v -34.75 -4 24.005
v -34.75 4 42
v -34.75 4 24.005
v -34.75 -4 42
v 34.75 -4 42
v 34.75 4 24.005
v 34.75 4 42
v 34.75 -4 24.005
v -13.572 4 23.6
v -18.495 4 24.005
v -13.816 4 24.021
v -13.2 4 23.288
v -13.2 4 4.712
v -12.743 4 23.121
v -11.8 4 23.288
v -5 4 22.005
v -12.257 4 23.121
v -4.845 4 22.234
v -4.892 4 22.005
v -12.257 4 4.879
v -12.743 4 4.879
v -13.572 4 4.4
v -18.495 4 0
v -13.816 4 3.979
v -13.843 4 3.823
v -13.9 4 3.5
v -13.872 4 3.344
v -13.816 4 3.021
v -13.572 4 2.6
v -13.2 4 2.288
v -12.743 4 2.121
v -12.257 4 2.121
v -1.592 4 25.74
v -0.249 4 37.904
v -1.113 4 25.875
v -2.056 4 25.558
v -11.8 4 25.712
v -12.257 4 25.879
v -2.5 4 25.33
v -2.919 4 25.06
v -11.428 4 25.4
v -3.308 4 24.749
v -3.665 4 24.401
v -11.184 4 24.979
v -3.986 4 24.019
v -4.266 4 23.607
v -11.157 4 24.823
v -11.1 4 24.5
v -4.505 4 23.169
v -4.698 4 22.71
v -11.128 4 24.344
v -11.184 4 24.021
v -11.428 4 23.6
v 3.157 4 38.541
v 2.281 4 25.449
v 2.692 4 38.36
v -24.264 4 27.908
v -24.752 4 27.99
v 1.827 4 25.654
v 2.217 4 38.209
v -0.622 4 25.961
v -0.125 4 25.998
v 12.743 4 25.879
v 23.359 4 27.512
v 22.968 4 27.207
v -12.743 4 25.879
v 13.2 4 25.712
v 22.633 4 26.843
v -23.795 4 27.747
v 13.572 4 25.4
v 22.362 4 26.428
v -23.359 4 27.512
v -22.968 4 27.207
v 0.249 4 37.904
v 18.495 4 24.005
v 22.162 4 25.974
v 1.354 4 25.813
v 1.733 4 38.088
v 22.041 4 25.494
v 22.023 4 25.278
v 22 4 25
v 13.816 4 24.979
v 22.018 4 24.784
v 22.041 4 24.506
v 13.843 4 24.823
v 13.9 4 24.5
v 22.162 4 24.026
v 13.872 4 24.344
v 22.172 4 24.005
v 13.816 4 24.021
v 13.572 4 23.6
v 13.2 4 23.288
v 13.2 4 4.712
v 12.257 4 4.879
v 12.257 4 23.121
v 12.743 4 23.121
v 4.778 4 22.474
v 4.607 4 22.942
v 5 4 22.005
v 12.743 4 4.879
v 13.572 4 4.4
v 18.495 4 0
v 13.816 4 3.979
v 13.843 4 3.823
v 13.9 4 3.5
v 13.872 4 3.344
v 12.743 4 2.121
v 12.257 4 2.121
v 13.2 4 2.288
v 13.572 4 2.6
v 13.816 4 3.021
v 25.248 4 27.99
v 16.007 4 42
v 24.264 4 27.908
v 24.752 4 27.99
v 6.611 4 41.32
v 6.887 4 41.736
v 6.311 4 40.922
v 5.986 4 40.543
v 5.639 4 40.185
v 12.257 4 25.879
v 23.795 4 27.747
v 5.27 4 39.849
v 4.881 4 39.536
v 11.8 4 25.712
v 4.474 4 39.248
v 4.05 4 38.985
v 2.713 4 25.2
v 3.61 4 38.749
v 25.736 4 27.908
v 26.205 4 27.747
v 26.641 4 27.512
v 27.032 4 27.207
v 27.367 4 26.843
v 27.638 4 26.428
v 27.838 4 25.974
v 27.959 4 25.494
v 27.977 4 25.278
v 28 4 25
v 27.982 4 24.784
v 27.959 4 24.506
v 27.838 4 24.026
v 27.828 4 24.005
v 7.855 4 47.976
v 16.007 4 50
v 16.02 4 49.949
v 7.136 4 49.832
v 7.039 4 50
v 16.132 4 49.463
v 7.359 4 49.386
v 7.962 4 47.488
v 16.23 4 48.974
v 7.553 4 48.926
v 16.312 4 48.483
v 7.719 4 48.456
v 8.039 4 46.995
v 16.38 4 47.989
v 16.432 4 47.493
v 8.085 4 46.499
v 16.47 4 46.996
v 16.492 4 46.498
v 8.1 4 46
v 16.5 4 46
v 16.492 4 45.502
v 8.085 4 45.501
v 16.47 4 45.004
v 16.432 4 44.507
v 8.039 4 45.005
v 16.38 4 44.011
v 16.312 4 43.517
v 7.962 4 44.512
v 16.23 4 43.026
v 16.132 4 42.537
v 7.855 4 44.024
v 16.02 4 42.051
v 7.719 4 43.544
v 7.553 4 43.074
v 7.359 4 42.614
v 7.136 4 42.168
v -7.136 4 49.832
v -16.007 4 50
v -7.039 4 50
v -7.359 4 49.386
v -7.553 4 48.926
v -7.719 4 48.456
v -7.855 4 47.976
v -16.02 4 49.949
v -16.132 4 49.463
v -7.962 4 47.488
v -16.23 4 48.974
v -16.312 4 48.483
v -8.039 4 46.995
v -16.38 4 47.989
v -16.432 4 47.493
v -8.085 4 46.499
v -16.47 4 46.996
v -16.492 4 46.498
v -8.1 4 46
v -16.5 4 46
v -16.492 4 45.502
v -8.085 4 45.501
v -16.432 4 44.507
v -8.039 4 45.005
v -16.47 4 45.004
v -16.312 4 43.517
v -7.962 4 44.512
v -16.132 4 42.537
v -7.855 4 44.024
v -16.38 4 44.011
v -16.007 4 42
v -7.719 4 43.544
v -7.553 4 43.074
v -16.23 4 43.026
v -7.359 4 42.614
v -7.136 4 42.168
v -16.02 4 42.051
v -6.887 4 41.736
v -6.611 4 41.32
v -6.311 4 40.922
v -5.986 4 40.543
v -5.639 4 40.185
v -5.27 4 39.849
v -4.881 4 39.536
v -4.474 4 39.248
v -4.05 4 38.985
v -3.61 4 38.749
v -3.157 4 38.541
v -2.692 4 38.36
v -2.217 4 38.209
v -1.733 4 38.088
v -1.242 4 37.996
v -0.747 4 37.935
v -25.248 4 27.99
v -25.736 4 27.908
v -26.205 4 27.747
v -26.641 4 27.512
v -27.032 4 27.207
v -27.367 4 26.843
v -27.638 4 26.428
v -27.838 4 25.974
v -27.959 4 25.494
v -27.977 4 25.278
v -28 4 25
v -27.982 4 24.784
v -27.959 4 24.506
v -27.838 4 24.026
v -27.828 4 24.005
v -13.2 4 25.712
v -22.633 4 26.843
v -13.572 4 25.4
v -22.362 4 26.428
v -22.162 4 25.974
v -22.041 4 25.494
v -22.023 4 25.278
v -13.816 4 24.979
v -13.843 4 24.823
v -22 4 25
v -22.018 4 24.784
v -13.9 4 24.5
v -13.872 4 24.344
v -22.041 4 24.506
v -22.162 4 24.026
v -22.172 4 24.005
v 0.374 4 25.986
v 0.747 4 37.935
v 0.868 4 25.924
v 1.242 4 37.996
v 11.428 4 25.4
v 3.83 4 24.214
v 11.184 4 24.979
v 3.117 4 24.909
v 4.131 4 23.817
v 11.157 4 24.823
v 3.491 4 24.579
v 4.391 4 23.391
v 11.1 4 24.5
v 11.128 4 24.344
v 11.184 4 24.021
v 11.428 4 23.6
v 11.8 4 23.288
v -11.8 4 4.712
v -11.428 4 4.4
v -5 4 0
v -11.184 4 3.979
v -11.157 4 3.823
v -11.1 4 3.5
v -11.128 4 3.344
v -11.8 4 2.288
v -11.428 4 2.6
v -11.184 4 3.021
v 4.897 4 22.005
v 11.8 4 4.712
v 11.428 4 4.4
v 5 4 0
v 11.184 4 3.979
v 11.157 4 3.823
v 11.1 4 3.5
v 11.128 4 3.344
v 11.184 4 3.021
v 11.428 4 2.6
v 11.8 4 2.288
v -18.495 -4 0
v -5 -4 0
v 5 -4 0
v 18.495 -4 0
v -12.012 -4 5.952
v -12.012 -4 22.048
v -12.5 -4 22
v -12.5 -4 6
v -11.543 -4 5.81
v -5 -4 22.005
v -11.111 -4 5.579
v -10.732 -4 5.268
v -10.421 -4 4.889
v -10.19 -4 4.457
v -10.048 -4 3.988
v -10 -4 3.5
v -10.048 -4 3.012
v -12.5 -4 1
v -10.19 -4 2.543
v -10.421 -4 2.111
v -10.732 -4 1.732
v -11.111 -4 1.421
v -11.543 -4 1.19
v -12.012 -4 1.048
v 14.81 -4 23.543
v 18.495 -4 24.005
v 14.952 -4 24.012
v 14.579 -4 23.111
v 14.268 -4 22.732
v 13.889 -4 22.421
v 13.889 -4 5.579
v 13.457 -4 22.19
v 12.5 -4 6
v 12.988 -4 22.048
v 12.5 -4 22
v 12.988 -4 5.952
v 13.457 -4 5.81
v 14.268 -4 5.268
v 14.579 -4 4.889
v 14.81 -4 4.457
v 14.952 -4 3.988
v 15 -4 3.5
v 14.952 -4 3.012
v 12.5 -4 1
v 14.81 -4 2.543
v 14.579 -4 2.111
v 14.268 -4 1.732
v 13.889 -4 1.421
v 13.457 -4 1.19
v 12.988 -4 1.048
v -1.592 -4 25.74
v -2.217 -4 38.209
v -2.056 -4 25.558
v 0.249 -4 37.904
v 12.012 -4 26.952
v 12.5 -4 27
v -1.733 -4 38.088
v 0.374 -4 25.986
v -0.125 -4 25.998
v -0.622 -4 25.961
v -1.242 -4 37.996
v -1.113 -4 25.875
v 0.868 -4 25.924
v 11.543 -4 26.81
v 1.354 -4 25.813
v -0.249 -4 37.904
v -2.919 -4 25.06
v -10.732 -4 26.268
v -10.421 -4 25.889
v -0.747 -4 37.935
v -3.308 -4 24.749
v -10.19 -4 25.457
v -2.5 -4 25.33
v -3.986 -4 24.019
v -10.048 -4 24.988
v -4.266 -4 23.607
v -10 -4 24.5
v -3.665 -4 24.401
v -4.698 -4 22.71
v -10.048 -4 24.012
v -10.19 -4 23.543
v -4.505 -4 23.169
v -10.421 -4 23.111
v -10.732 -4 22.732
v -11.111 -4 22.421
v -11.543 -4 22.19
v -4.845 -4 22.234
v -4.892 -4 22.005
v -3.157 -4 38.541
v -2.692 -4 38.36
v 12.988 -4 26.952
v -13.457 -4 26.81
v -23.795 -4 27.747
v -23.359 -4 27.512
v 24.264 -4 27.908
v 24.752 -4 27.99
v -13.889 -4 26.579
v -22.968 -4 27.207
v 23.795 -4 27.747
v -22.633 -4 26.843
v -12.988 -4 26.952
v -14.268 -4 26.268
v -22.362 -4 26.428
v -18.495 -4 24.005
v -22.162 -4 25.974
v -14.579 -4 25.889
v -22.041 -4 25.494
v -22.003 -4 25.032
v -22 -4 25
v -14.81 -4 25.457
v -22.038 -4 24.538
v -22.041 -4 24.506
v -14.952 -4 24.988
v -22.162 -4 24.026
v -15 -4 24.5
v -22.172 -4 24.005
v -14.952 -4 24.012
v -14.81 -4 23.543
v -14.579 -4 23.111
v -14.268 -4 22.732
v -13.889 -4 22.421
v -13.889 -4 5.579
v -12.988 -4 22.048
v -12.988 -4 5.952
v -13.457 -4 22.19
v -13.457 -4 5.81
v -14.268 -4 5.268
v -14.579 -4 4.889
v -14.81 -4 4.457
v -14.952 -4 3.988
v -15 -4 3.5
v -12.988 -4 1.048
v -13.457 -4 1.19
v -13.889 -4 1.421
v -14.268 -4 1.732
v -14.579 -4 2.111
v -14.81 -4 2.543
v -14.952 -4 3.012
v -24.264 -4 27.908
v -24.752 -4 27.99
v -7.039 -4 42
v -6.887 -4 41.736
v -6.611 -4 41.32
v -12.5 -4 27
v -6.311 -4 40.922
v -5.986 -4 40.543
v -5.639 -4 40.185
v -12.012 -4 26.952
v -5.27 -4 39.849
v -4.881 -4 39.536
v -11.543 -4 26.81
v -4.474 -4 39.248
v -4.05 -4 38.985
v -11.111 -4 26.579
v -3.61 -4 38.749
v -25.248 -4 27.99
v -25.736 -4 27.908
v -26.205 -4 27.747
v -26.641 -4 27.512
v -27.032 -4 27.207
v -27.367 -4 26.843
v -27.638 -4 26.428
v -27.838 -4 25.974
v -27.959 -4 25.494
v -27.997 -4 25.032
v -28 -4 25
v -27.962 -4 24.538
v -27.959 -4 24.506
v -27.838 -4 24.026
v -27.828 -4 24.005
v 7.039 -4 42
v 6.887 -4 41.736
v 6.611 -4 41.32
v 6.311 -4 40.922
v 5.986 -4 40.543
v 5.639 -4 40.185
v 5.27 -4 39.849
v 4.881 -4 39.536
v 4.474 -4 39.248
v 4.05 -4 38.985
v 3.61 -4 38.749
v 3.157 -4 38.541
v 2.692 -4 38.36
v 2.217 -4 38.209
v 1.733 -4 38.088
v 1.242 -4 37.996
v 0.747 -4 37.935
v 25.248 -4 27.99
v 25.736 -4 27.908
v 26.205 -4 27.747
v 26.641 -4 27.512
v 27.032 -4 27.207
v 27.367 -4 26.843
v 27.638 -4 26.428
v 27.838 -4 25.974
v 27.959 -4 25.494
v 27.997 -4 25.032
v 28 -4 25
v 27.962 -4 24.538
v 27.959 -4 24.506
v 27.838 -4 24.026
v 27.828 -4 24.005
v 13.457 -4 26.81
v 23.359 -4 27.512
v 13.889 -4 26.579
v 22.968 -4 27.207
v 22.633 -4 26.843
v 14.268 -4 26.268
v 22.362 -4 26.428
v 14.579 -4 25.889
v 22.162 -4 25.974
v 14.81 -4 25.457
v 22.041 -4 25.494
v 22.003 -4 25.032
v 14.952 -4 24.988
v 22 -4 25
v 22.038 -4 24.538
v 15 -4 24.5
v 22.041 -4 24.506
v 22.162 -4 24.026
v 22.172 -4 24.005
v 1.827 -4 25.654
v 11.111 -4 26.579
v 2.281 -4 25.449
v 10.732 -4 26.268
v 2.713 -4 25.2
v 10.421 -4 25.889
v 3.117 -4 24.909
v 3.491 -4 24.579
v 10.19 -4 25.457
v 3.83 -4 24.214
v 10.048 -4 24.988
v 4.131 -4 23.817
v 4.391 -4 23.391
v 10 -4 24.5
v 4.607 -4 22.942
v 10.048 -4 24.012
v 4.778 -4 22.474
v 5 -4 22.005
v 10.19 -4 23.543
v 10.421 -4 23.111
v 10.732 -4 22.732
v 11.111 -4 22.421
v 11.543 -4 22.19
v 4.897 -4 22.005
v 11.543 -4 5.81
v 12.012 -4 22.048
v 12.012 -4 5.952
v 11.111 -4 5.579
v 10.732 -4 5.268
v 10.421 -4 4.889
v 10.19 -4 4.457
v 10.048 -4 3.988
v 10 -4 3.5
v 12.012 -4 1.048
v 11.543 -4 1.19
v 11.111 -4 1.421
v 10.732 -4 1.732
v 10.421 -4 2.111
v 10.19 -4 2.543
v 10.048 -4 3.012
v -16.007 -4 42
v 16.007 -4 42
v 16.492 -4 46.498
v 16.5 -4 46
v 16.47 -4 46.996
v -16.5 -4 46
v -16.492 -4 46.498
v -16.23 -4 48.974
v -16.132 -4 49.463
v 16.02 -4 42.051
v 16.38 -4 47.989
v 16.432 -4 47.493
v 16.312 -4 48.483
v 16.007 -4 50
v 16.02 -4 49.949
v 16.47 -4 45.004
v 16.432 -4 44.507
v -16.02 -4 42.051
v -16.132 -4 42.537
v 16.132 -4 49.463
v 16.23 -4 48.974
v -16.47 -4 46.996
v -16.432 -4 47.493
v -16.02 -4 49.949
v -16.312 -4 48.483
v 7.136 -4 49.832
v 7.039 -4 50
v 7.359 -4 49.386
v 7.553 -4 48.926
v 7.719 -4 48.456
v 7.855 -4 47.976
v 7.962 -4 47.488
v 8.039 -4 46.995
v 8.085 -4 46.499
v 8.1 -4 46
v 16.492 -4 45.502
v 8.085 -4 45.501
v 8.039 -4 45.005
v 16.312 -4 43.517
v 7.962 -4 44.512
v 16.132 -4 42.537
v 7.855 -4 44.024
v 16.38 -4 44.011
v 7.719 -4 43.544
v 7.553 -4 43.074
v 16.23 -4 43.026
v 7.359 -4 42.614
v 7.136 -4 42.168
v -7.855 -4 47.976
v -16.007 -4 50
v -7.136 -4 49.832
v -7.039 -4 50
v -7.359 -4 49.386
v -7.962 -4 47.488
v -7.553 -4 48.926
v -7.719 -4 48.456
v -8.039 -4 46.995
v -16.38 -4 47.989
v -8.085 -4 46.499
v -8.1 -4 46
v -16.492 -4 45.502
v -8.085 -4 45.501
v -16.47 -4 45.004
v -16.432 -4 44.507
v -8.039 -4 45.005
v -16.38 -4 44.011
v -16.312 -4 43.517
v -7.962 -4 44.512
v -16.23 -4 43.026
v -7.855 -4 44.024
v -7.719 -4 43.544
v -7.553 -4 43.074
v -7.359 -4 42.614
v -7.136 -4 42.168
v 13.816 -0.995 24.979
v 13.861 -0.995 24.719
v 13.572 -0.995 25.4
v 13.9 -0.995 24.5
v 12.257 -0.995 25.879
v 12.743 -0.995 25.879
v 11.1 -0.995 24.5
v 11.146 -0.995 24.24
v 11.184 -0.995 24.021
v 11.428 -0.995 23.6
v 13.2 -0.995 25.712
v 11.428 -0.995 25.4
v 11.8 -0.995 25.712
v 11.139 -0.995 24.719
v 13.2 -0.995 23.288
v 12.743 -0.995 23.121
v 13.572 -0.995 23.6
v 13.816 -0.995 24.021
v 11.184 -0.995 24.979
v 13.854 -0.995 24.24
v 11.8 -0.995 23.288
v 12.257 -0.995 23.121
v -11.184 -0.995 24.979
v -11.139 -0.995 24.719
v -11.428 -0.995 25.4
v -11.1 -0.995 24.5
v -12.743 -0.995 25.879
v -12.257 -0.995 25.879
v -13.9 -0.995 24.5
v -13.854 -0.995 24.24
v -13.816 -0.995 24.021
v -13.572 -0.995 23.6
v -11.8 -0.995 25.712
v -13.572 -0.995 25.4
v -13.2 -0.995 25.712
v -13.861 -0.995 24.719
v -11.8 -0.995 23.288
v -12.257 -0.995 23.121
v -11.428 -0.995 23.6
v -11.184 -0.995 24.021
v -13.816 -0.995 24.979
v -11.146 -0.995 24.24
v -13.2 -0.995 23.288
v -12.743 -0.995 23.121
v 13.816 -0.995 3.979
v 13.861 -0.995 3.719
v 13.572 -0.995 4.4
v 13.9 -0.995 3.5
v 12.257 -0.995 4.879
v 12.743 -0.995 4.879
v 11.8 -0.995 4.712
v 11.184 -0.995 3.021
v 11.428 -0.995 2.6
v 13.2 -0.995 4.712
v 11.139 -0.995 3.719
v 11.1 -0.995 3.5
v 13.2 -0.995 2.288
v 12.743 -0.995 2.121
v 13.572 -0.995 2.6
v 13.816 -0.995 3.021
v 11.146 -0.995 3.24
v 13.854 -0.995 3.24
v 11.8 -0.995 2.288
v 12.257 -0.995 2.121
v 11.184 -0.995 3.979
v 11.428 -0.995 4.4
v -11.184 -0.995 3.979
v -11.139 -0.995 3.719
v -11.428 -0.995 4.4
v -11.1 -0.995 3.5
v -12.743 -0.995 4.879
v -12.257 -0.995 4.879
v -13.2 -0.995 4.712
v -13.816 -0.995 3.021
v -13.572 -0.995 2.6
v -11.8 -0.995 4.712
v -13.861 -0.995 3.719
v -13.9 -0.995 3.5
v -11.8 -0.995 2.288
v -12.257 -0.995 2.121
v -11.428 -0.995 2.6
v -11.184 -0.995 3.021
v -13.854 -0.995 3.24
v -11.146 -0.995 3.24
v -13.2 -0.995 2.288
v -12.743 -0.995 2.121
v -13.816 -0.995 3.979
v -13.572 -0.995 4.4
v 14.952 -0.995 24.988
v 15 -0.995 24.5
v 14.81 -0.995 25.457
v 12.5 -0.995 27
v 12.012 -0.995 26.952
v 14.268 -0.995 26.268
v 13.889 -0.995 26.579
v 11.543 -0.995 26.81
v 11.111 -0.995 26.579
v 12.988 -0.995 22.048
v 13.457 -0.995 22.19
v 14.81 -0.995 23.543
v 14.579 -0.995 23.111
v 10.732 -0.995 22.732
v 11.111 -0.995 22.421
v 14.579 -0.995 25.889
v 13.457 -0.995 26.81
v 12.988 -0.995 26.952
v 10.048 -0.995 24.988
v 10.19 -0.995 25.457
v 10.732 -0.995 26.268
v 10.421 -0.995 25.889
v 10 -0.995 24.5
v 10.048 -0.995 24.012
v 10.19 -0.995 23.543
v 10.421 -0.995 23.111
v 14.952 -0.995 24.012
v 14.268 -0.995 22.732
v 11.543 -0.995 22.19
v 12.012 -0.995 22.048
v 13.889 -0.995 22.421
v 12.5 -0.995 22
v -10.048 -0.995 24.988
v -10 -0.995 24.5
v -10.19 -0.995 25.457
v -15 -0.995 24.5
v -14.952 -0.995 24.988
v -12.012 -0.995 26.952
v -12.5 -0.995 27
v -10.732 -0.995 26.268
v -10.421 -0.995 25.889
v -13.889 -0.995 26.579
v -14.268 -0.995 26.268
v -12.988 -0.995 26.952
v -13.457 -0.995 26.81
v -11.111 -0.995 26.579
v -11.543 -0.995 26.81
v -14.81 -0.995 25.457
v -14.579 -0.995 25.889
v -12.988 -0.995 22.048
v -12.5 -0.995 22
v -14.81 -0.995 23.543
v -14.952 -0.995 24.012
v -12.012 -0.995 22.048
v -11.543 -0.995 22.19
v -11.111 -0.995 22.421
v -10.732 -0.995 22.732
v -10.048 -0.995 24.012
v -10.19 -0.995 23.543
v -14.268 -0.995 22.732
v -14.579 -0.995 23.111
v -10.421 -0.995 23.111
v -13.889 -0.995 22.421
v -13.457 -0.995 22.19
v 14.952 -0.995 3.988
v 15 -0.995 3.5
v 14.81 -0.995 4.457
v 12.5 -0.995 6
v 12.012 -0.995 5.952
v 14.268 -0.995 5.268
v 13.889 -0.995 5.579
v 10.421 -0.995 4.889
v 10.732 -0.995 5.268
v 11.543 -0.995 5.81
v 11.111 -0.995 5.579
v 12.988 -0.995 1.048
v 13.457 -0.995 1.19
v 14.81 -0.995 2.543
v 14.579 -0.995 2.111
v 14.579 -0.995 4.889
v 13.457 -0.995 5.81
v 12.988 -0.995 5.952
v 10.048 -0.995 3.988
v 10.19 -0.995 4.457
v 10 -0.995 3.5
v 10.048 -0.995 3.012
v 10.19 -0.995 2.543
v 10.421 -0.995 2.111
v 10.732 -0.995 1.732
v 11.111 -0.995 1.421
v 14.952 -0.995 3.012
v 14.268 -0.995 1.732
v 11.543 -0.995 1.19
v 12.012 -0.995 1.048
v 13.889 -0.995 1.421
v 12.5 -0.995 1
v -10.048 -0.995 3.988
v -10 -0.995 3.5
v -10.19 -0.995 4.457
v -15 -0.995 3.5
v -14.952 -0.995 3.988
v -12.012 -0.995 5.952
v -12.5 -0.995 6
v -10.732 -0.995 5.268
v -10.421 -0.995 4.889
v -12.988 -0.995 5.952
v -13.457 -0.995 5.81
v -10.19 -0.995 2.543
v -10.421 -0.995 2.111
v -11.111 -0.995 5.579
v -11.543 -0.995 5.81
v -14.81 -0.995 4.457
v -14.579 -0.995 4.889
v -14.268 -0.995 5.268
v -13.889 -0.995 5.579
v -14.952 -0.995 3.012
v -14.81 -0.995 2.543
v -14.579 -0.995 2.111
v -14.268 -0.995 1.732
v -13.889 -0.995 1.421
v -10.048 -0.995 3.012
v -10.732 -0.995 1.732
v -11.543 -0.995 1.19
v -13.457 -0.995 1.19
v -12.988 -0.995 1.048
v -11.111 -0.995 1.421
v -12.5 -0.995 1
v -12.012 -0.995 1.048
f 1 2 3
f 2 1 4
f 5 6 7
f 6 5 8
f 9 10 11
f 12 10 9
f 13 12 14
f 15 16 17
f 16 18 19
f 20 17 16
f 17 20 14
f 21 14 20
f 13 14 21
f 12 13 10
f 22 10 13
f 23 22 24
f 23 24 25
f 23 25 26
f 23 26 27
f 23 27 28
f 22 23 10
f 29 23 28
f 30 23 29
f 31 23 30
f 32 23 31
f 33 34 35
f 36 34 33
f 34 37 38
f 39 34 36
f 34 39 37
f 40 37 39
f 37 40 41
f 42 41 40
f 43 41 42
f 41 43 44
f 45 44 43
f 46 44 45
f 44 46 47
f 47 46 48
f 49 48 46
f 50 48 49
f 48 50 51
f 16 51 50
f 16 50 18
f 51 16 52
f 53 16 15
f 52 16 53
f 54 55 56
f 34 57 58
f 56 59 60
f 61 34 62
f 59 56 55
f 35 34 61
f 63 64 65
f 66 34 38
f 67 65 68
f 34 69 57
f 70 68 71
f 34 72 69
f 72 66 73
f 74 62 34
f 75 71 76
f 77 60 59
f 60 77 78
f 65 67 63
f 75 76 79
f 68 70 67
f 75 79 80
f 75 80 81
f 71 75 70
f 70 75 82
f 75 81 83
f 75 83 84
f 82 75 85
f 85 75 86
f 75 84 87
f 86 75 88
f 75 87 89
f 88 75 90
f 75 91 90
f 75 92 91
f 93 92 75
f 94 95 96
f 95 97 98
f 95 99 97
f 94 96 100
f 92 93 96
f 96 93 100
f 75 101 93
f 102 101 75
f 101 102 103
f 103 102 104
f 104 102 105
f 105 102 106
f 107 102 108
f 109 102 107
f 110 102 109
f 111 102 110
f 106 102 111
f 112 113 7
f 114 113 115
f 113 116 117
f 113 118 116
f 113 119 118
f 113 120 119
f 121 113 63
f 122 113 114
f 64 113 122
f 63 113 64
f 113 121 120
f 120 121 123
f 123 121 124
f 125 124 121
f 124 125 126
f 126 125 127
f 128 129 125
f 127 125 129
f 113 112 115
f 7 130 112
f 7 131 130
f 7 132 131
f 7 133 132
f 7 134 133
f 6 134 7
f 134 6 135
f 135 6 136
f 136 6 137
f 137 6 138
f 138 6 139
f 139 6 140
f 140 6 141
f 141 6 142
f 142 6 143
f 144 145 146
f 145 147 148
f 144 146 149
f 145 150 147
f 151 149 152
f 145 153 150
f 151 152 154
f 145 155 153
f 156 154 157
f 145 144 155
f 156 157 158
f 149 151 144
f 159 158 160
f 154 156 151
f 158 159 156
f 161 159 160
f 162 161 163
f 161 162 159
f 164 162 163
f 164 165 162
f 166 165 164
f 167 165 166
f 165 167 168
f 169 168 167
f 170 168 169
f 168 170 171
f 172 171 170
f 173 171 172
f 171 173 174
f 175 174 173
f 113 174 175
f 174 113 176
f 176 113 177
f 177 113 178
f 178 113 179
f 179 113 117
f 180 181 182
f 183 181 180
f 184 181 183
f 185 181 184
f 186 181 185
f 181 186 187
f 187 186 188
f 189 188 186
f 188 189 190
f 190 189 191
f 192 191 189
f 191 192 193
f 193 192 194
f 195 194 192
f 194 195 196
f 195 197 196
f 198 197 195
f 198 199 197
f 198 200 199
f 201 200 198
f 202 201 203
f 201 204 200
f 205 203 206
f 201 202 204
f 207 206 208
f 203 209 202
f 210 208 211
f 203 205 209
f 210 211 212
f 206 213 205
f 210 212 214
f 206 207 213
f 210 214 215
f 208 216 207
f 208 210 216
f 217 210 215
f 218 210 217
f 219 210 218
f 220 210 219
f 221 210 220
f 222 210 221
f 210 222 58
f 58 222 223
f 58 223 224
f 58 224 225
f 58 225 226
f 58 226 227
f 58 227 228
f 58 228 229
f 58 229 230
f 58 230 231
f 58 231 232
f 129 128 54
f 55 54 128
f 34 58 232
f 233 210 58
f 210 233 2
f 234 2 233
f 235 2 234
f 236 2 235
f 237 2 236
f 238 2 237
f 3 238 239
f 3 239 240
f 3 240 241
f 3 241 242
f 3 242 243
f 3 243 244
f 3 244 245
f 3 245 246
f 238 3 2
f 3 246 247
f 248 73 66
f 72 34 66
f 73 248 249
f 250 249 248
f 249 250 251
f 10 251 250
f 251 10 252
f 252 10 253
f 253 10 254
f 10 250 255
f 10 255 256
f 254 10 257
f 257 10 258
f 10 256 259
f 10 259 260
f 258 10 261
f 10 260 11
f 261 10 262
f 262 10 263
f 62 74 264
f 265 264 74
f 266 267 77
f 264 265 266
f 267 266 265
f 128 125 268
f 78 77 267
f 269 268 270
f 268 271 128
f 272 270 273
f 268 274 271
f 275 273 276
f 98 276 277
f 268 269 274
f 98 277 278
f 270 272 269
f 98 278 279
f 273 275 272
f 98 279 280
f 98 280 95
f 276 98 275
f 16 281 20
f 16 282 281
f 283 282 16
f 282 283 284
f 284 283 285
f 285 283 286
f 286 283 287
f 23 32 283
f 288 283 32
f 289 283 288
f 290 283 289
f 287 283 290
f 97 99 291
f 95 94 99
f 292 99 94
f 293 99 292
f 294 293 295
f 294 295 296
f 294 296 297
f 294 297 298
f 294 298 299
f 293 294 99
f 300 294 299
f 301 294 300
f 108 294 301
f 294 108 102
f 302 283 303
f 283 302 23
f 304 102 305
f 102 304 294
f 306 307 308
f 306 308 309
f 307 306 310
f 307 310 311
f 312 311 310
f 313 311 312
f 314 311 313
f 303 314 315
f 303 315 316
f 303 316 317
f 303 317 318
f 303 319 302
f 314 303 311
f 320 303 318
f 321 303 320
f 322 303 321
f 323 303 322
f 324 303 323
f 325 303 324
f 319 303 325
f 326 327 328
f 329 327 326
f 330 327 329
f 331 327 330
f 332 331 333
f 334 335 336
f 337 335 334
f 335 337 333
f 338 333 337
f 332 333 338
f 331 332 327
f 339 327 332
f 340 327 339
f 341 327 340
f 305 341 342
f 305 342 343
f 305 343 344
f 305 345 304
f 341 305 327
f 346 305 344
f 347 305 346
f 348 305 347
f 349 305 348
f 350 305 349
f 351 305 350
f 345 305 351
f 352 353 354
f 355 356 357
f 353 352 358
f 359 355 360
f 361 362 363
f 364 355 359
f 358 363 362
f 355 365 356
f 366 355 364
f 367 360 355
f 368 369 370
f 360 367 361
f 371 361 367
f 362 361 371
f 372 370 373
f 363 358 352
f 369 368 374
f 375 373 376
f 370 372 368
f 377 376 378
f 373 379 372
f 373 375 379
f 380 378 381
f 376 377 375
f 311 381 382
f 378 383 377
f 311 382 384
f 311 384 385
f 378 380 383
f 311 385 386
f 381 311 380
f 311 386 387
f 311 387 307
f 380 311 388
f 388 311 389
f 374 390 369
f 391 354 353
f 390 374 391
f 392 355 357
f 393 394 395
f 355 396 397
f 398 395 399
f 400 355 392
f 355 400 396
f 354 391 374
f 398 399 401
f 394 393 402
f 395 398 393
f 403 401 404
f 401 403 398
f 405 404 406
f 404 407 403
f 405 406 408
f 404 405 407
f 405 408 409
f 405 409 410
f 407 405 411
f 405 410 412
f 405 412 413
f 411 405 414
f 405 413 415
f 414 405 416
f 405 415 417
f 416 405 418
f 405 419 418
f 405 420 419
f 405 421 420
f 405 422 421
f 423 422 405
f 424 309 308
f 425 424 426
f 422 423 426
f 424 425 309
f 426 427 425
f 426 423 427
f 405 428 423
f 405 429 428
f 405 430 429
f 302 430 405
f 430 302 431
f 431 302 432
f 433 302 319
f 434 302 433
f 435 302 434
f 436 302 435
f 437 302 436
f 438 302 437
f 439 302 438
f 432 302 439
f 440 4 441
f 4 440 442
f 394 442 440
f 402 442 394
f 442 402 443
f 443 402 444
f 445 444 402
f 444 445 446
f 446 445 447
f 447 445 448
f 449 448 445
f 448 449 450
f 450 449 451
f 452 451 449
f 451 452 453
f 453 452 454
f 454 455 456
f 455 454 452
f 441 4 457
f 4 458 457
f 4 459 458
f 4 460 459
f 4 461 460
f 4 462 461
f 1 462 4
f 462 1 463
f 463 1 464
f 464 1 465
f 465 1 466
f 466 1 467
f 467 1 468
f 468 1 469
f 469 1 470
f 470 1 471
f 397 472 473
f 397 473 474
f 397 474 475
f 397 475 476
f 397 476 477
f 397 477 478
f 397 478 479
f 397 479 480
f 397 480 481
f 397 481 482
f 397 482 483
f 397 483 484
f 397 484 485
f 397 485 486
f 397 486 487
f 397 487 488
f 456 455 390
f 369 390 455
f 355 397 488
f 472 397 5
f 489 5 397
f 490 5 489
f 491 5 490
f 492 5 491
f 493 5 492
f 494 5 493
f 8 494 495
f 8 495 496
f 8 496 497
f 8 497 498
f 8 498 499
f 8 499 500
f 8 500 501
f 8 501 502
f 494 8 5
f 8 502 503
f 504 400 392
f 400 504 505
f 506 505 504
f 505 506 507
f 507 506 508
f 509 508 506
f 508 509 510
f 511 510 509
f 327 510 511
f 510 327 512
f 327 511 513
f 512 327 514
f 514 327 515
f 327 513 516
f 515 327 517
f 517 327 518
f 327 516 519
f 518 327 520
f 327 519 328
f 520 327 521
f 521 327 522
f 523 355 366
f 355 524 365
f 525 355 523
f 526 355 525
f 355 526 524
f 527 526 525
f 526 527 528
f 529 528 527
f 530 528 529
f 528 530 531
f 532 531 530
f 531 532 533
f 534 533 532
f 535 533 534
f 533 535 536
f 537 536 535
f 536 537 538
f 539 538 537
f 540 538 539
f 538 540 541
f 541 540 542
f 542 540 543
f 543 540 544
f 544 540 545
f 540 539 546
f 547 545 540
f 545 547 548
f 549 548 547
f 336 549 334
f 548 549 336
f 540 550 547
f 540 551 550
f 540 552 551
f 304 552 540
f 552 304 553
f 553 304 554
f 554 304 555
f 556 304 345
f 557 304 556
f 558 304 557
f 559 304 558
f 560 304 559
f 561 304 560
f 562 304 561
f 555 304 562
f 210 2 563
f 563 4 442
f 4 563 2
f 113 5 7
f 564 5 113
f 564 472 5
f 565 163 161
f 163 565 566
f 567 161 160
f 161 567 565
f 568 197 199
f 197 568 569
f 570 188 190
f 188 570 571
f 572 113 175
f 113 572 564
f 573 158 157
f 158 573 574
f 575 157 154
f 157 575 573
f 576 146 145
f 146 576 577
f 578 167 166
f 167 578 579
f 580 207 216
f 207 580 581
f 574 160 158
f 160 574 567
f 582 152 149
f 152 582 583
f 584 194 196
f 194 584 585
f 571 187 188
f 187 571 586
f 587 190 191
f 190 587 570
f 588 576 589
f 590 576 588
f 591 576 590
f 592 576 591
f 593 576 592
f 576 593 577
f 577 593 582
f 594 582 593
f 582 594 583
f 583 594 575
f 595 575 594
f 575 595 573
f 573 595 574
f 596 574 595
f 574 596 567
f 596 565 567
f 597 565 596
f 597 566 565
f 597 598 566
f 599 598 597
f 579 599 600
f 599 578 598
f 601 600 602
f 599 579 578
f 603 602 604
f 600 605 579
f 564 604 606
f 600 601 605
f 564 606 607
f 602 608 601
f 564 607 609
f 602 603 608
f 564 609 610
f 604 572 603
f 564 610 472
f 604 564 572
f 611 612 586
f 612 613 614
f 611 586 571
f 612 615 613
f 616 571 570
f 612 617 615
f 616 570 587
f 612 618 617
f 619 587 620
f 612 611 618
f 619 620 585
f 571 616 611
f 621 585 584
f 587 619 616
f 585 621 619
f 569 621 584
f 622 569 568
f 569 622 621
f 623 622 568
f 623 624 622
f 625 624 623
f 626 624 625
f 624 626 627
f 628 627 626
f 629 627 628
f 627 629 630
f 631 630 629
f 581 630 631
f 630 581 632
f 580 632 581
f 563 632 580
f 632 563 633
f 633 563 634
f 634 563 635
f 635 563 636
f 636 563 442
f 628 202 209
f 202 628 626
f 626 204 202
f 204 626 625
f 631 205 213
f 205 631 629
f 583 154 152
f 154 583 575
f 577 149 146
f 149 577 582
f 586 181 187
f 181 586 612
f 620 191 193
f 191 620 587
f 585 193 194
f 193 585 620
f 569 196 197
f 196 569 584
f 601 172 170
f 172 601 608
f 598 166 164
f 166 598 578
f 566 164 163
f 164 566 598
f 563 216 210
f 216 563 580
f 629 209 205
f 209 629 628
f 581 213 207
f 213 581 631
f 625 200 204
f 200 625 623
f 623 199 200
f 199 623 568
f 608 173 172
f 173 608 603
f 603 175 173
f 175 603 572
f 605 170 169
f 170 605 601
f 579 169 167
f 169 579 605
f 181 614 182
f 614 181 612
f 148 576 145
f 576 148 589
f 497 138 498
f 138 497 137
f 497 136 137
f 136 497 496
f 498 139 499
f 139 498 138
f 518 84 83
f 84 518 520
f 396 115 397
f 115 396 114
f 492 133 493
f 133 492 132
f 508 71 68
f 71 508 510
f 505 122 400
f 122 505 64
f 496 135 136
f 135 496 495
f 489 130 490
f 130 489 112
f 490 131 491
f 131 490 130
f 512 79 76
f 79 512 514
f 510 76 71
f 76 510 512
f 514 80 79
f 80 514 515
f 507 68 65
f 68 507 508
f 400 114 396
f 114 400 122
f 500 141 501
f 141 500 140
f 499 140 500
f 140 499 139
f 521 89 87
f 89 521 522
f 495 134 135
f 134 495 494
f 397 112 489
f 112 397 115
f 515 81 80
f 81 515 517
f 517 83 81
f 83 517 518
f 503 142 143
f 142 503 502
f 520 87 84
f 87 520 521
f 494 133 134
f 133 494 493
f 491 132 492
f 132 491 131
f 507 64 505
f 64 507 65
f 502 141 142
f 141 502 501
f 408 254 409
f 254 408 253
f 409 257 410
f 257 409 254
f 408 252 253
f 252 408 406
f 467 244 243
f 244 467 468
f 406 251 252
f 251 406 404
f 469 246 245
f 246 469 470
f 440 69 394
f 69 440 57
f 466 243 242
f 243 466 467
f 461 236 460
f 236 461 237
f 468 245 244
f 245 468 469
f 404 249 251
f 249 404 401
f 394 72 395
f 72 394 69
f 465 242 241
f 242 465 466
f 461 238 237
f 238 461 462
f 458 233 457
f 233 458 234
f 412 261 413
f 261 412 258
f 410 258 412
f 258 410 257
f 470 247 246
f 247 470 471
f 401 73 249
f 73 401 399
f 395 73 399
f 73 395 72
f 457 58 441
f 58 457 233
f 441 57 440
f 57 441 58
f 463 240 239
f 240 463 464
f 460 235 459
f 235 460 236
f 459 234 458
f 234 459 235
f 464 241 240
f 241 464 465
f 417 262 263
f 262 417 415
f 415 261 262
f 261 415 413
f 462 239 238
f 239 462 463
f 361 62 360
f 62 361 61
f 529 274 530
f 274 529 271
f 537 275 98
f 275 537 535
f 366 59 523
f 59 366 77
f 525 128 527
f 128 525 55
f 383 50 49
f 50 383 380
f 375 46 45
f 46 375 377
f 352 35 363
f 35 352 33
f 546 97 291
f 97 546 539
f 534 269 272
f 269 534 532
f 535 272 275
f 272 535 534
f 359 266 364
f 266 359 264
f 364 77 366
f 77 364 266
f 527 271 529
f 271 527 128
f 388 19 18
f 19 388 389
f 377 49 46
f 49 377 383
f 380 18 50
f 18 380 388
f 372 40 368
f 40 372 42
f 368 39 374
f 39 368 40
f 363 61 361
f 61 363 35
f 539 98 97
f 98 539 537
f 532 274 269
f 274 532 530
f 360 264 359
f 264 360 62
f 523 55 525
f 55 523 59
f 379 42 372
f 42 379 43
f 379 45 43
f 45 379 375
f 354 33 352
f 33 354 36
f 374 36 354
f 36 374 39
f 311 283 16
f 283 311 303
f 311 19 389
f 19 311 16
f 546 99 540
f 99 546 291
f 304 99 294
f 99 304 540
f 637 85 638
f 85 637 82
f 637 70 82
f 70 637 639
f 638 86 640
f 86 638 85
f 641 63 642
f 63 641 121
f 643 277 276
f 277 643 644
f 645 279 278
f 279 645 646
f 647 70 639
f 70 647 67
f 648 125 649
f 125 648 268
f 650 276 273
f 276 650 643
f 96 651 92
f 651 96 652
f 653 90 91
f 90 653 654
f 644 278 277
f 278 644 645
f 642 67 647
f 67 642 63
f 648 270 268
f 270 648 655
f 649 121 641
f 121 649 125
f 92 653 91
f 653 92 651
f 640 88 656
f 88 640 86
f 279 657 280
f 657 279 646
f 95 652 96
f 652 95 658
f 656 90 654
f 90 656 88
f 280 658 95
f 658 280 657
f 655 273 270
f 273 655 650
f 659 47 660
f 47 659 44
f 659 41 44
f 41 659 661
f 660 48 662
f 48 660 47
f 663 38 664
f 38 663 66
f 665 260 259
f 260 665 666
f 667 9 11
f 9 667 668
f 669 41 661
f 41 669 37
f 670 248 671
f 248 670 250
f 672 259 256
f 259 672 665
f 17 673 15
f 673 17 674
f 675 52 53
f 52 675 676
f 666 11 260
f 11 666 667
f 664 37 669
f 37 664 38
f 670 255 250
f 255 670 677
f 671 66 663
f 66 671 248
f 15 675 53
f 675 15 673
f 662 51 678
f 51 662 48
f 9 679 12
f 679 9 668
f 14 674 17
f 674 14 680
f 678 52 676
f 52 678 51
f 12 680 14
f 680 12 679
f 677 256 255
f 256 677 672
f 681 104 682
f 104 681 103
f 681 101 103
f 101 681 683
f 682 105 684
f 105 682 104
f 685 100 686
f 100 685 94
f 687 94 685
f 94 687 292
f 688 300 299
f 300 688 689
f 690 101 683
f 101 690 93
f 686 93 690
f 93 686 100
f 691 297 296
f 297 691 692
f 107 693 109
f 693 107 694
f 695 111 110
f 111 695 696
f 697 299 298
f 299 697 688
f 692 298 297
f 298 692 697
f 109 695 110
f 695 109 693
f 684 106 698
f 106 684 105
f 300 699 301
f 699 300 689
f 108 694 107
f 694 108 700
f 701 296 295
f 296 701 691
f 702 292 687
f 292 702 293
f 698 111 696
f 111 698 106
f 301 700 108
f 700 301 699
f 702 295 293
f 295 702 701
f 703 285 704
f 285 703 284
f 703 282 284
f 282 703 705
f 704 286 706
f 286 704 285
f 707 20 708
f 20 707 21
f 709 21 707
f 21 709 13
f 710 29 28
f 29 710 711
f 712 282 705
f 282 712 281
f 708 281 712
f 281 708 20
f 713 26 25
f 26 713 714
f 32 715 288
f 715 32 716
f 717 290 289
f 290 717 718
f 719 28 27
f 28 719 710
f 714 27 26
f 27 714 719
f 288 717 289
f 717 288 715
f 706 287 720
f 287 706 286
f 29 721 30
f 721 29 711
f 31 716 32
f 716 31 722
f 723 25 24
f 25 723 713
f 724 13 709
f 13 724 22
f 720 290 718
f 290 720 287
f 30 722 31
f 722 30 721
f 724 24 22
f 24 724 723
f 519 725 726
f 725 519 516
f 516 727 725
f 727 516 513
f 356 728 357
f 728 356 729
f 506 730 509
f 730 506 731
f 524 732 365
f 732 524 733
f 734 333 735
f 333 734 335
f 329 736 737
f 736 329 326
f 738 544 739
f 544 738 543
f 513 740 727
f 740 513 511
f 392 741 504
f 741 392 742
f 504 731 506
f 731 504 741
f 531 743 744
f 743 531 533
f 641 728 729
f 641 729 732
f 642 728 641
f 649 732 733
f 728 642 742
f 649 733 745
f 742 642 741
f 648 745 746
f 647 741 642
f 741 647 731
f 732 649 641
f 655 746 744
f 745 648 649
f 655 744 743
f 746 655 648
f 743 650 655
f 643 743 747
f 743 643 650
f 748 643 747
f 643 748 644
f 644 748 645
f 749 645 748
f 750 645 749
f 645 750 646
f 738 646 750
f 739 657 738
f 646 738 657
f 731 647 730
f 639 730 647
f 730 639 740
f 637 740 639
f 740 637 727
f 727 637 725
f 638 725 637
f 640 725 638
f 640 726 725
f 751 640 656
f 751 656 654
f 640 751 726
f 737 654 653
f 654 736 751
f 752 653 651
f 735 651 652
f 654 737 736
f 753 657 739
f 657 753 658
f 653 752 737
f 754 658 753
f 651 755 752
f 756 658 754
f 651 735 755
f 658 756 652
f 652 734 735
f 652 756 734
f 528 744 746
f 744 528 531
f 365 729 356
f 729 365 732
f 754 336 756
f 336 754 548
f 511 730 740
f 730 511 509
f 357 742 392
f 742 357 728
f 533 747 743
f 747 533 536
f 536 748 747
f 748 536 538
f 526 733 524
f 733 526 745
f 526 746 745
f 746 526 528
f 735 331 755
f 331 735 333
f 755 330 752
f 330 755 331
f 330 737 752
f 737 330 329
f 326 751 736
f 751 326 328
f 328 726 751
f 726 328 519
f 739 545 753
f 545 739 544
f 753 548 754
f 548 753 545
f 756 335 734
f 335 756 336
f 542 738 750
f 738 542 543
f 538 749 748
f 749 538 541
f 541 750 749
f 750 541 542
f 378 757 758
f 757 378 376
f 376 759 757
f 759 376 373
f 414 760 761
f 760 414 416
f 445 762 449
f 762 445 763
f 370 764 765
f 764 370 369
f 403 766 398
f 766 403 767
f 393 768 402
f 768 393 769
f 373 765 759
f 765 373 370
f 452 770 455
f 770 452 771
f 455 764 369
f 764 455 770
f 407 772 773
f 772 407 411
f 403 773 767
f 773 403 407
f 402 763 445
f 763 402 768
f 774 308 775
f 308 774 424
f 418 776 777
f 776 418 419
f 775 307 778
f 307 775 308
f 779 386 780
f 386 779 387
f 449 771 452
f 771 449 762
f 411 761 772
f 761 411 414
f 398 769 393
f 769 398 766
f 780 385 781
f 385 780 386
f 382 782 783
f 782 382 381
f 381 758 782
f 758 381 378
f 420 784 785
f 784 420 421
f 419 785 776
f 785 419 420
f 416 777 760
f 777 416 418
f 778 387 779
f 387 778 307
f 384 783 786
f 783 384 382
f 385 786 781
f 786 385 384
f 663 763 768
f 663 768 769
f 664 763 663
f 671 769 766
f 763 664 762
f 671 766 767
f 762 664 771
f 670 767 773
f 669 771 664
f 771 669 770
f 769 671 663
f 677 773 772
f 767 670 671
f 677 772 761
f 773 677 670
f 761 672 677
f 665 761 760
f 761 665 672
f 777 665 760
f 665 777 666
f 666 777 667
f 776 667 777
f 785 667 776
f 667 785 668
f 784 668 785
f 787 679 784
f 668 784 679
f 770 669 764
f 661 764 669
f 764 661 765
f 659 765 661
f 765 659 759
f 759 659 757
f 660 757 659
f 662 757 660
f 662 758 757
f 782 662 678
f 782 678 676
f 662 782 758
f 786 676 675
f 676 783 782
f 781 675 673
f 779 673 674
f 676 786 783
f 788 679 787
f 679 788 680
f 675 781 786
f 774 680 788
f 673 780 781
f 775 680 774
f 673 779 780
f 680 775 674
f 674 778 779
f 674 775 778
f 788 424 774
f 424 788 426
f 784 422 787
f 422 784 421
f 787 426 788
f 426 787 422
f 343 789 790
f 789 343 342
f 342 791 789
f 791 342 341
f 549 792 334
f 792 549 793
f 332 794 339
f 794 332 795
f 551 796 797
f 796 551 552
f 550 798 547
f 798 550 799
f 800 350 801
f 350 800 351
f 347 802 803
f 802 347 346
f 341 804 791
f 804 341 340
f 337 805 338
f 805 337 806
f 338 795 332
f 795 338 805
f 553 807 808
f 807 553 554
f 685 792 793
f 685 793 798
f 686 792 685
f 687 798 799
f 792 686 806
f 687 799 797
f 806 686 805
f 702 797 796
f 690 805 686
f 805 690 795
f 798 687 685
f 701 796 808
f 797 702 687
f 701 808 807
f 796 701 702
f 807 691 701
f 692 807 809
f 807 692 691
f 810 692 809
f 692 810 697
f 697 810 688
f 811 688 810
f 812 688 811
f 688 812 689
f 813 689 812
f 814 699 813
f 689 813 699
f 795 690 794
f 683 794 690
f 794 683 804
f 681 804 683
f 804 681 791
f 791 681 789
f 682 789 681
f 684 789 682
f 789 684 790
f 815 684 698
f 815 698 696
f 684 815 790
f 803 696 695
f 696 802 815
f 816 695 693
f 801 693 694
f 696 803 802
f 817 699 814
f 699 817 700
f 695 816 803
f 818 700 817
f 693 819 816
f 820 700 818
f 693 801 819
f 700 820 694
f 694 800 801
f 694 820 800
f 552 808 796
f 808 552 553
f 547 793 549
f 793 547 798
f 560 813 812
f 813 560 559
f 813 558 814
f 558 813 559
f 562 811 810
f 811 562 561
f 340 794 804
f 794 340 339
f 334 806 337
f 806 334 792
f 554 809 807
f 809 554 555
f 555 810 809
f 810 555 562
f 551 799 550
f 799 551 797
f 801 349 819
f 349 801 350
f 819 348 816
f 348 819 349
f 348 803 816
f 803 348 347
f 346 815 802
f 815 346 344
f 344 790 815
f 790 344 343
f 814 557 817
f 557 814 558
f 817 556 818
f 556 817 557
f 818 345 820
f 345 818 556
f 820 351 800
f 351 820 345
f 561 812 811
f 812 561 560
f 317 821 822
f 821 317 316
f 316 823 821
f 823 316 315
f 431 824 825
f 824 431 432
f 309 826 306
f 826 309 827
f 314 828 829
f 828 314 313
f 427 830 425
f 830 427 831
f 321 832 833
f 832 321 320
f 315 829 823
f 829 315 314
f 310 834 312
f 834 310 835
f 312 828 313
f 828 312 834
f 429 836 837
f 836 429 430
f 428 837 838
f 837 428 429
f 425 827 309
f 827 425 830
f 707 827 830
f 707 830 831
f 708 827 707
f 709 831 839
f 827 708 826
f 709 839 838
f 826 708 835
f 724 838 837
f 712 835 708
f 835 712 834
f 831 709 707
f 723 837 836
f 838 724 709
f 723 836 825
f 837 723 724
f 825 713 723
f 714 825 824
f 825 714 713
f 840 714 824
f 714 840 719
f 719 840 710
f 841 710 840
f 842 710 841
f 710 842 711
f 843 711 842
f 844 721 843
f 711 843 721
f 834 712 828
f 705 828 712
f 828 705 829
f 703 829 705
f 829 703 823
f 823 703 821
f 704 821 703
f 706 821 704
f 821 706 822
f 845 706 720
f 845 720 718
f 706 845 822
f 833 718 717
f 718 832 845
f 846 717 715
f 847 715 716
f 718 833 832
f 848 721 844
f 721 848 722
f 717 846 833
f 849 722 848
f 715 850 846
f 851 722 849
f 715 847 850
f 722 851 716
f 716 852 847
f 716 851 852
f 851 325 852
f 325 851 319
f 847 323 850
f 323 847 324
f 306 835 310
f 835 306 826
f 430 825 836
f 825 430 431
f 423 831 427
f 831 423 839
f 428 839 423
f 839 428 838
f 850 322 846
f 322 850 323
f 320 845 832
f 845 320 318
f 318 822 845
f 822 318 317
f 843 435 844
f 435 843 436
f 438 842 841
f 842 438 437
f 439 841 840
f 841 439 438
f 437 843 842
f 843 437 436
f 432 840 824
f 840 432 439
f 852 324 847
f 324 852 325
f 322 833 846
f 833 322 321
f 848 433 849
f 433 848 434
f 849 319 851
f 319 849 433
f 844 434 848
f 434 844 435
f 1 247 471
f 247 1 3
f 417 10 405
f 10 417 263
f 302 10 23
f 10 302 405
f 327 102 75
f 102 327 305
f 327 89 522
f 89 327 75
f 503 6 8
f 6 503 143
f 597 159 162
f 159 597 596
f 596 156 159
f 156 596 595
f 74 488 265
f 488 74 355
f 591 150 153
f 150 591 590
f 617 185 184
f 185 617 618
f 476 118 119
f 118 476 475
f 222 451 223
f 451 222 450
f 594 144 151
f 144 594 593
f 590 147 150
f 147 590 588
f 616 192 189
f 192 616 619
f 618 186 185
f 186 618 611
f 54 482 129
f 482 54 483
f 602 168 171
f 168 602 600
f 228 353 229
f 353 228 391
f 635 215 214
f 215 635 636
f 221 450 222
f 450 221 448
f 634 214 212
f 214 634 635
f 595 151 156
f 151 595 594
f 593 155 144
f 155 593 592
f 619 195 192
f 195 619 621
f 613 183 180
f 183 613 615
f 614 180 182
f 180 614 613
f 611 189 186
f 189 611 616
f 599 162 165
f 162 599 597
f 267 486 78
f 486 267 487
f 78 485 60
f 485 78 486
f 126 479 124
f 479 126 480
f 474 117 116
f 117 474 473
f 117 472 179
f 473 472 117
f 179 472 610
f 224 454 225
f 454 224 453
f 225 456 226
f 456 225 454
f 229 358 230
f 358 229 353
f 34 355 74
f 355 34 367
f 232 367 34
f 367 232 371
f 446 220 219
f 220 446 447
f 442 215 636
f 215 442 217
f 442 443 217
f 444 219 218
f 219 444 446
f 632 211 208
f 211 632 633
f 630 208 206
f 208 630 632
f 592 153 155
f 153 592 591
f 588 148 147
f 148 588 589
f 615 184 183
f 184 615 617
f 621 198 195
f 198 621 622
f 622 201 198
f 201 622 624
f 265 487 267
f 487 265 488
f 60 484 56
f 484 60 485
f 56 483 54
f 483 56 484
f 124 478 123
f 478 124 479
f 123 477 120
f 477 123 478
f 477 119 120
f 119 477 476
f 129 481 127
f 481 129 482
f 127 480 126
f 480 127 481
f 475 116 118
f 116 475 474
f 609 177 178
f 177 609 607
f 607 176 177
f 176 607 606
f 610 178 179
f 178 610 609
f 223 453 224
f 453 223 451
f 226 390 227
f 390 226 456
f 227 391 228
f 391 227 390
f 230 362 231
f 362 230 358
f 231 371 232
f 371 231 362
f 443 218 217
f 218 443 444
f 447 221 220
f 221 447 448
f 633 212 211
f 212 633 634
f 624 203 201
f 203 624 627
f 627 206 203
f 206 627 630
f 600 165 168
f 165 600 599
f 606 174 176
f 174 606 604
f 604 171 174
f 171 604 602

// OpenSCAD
$fa=0.5; // default minimum facet angle is now 0.5
$fs=0.5; // default minimum facet size is now 0.5 mm

difference() {
    union() {
        //main body
        translate([0, 0, 29.5/2]) 
        cube([69.5, 8, 29.5], center = true);
        
        //top bar
        color("blue")
        translate([0, 0, 6.25+29.5])
        cube([69.5, 8, 12.5], center = true);
   
        //syringe holder
        color("red")
        rotate([90, 0, 0])
        translate([0, 29.5+16.5, 0])
        cylinder(h = 8, r = 16.5, center = true);
    }
    
    //remove top of syringe holder
    translate([0, 0, 57])
    cube([33, 8.1, 14], center = true);
    
    //holes for rods
    rotate([90, 0, 0])
    translate([25, 25, -3]) 
    cylinder(h = 16.1, r = 3, center = true);
    
    rotate([90, 0, 0])
    translate([-25, 25, -3]) 
    cylinder(h = 16.1, r = 3, center = true);
    
    //hole in center
    rotate([90, 0, 0])
    translate([0, 21, 0]) 
    cylinder(h = 23, r = 5, center = true);
    
    translate([0, 0, 22/2])
    cube([10, 8+.01, 22+.01], center = true);
    
    //top holes for screws
    rotate([90, 0, 0])
    translate([12.5, 24.5, 0]) 
    cylinder(h = 23, r = 1.4, center = true);
    
    rotate([90, 0, 0])
    translate([-12.5, 24.5, 0]) 
    cylinder(h = 23, r = 1.4, center = true);
    
    //bottom holes for screws
    rotate([90, 0, 0])
    translate([12.5, 3.5, 0]) 
    cylinder(h = 23, r = 1.4, center = true);
    
    rotate([90, 0, 0])
    translate([-12.5, 3.5, 0]) 
    cylinder(h = 23, r = 1.4, center = true);
    
    //sink holes for top screws
    rotate([90, 0, 0])
    translate([12.5, 24.5, 2.5]) 
    cylinder(h = 3+.01, r = 2.5, center = true);
    
    rotate([90, 0, 0])
    translate([-12.5, 24.5, 2.5]) 
    cylinder(h = 3+.01, r = 2.5, center = true);
    
    //sink holes for bottom screws
    rotate([90, 0, 0])
    translate([12.5, 3.5, 2.5]) 
    cylinder(h = 3+.01, r = 2.5, center = true);
    
    rotate([90, 0, 0])
    translate([-12.5, 3.5, 2.5]) 
    cylinder(h = 3+.01, r = 2.5, center = true);
    
    //remove bottom corners of main piece
    translate([-69.5/2+16.25/2, 0, 24/2])
    cube([16.26, 8.5, 24+.01], center = true);
       
    translate([69.5/2-16.25/2, 0, 24/2])
    cube([16.26, 8.5, 24+.01], center = true);
    
    //syringe holder circular hole
    rotate([90, 0, 0])
    translate([0, 29.5+16.5, 0])
    cylinder(h = 8+.01, r = 8.1, center = true);
}
